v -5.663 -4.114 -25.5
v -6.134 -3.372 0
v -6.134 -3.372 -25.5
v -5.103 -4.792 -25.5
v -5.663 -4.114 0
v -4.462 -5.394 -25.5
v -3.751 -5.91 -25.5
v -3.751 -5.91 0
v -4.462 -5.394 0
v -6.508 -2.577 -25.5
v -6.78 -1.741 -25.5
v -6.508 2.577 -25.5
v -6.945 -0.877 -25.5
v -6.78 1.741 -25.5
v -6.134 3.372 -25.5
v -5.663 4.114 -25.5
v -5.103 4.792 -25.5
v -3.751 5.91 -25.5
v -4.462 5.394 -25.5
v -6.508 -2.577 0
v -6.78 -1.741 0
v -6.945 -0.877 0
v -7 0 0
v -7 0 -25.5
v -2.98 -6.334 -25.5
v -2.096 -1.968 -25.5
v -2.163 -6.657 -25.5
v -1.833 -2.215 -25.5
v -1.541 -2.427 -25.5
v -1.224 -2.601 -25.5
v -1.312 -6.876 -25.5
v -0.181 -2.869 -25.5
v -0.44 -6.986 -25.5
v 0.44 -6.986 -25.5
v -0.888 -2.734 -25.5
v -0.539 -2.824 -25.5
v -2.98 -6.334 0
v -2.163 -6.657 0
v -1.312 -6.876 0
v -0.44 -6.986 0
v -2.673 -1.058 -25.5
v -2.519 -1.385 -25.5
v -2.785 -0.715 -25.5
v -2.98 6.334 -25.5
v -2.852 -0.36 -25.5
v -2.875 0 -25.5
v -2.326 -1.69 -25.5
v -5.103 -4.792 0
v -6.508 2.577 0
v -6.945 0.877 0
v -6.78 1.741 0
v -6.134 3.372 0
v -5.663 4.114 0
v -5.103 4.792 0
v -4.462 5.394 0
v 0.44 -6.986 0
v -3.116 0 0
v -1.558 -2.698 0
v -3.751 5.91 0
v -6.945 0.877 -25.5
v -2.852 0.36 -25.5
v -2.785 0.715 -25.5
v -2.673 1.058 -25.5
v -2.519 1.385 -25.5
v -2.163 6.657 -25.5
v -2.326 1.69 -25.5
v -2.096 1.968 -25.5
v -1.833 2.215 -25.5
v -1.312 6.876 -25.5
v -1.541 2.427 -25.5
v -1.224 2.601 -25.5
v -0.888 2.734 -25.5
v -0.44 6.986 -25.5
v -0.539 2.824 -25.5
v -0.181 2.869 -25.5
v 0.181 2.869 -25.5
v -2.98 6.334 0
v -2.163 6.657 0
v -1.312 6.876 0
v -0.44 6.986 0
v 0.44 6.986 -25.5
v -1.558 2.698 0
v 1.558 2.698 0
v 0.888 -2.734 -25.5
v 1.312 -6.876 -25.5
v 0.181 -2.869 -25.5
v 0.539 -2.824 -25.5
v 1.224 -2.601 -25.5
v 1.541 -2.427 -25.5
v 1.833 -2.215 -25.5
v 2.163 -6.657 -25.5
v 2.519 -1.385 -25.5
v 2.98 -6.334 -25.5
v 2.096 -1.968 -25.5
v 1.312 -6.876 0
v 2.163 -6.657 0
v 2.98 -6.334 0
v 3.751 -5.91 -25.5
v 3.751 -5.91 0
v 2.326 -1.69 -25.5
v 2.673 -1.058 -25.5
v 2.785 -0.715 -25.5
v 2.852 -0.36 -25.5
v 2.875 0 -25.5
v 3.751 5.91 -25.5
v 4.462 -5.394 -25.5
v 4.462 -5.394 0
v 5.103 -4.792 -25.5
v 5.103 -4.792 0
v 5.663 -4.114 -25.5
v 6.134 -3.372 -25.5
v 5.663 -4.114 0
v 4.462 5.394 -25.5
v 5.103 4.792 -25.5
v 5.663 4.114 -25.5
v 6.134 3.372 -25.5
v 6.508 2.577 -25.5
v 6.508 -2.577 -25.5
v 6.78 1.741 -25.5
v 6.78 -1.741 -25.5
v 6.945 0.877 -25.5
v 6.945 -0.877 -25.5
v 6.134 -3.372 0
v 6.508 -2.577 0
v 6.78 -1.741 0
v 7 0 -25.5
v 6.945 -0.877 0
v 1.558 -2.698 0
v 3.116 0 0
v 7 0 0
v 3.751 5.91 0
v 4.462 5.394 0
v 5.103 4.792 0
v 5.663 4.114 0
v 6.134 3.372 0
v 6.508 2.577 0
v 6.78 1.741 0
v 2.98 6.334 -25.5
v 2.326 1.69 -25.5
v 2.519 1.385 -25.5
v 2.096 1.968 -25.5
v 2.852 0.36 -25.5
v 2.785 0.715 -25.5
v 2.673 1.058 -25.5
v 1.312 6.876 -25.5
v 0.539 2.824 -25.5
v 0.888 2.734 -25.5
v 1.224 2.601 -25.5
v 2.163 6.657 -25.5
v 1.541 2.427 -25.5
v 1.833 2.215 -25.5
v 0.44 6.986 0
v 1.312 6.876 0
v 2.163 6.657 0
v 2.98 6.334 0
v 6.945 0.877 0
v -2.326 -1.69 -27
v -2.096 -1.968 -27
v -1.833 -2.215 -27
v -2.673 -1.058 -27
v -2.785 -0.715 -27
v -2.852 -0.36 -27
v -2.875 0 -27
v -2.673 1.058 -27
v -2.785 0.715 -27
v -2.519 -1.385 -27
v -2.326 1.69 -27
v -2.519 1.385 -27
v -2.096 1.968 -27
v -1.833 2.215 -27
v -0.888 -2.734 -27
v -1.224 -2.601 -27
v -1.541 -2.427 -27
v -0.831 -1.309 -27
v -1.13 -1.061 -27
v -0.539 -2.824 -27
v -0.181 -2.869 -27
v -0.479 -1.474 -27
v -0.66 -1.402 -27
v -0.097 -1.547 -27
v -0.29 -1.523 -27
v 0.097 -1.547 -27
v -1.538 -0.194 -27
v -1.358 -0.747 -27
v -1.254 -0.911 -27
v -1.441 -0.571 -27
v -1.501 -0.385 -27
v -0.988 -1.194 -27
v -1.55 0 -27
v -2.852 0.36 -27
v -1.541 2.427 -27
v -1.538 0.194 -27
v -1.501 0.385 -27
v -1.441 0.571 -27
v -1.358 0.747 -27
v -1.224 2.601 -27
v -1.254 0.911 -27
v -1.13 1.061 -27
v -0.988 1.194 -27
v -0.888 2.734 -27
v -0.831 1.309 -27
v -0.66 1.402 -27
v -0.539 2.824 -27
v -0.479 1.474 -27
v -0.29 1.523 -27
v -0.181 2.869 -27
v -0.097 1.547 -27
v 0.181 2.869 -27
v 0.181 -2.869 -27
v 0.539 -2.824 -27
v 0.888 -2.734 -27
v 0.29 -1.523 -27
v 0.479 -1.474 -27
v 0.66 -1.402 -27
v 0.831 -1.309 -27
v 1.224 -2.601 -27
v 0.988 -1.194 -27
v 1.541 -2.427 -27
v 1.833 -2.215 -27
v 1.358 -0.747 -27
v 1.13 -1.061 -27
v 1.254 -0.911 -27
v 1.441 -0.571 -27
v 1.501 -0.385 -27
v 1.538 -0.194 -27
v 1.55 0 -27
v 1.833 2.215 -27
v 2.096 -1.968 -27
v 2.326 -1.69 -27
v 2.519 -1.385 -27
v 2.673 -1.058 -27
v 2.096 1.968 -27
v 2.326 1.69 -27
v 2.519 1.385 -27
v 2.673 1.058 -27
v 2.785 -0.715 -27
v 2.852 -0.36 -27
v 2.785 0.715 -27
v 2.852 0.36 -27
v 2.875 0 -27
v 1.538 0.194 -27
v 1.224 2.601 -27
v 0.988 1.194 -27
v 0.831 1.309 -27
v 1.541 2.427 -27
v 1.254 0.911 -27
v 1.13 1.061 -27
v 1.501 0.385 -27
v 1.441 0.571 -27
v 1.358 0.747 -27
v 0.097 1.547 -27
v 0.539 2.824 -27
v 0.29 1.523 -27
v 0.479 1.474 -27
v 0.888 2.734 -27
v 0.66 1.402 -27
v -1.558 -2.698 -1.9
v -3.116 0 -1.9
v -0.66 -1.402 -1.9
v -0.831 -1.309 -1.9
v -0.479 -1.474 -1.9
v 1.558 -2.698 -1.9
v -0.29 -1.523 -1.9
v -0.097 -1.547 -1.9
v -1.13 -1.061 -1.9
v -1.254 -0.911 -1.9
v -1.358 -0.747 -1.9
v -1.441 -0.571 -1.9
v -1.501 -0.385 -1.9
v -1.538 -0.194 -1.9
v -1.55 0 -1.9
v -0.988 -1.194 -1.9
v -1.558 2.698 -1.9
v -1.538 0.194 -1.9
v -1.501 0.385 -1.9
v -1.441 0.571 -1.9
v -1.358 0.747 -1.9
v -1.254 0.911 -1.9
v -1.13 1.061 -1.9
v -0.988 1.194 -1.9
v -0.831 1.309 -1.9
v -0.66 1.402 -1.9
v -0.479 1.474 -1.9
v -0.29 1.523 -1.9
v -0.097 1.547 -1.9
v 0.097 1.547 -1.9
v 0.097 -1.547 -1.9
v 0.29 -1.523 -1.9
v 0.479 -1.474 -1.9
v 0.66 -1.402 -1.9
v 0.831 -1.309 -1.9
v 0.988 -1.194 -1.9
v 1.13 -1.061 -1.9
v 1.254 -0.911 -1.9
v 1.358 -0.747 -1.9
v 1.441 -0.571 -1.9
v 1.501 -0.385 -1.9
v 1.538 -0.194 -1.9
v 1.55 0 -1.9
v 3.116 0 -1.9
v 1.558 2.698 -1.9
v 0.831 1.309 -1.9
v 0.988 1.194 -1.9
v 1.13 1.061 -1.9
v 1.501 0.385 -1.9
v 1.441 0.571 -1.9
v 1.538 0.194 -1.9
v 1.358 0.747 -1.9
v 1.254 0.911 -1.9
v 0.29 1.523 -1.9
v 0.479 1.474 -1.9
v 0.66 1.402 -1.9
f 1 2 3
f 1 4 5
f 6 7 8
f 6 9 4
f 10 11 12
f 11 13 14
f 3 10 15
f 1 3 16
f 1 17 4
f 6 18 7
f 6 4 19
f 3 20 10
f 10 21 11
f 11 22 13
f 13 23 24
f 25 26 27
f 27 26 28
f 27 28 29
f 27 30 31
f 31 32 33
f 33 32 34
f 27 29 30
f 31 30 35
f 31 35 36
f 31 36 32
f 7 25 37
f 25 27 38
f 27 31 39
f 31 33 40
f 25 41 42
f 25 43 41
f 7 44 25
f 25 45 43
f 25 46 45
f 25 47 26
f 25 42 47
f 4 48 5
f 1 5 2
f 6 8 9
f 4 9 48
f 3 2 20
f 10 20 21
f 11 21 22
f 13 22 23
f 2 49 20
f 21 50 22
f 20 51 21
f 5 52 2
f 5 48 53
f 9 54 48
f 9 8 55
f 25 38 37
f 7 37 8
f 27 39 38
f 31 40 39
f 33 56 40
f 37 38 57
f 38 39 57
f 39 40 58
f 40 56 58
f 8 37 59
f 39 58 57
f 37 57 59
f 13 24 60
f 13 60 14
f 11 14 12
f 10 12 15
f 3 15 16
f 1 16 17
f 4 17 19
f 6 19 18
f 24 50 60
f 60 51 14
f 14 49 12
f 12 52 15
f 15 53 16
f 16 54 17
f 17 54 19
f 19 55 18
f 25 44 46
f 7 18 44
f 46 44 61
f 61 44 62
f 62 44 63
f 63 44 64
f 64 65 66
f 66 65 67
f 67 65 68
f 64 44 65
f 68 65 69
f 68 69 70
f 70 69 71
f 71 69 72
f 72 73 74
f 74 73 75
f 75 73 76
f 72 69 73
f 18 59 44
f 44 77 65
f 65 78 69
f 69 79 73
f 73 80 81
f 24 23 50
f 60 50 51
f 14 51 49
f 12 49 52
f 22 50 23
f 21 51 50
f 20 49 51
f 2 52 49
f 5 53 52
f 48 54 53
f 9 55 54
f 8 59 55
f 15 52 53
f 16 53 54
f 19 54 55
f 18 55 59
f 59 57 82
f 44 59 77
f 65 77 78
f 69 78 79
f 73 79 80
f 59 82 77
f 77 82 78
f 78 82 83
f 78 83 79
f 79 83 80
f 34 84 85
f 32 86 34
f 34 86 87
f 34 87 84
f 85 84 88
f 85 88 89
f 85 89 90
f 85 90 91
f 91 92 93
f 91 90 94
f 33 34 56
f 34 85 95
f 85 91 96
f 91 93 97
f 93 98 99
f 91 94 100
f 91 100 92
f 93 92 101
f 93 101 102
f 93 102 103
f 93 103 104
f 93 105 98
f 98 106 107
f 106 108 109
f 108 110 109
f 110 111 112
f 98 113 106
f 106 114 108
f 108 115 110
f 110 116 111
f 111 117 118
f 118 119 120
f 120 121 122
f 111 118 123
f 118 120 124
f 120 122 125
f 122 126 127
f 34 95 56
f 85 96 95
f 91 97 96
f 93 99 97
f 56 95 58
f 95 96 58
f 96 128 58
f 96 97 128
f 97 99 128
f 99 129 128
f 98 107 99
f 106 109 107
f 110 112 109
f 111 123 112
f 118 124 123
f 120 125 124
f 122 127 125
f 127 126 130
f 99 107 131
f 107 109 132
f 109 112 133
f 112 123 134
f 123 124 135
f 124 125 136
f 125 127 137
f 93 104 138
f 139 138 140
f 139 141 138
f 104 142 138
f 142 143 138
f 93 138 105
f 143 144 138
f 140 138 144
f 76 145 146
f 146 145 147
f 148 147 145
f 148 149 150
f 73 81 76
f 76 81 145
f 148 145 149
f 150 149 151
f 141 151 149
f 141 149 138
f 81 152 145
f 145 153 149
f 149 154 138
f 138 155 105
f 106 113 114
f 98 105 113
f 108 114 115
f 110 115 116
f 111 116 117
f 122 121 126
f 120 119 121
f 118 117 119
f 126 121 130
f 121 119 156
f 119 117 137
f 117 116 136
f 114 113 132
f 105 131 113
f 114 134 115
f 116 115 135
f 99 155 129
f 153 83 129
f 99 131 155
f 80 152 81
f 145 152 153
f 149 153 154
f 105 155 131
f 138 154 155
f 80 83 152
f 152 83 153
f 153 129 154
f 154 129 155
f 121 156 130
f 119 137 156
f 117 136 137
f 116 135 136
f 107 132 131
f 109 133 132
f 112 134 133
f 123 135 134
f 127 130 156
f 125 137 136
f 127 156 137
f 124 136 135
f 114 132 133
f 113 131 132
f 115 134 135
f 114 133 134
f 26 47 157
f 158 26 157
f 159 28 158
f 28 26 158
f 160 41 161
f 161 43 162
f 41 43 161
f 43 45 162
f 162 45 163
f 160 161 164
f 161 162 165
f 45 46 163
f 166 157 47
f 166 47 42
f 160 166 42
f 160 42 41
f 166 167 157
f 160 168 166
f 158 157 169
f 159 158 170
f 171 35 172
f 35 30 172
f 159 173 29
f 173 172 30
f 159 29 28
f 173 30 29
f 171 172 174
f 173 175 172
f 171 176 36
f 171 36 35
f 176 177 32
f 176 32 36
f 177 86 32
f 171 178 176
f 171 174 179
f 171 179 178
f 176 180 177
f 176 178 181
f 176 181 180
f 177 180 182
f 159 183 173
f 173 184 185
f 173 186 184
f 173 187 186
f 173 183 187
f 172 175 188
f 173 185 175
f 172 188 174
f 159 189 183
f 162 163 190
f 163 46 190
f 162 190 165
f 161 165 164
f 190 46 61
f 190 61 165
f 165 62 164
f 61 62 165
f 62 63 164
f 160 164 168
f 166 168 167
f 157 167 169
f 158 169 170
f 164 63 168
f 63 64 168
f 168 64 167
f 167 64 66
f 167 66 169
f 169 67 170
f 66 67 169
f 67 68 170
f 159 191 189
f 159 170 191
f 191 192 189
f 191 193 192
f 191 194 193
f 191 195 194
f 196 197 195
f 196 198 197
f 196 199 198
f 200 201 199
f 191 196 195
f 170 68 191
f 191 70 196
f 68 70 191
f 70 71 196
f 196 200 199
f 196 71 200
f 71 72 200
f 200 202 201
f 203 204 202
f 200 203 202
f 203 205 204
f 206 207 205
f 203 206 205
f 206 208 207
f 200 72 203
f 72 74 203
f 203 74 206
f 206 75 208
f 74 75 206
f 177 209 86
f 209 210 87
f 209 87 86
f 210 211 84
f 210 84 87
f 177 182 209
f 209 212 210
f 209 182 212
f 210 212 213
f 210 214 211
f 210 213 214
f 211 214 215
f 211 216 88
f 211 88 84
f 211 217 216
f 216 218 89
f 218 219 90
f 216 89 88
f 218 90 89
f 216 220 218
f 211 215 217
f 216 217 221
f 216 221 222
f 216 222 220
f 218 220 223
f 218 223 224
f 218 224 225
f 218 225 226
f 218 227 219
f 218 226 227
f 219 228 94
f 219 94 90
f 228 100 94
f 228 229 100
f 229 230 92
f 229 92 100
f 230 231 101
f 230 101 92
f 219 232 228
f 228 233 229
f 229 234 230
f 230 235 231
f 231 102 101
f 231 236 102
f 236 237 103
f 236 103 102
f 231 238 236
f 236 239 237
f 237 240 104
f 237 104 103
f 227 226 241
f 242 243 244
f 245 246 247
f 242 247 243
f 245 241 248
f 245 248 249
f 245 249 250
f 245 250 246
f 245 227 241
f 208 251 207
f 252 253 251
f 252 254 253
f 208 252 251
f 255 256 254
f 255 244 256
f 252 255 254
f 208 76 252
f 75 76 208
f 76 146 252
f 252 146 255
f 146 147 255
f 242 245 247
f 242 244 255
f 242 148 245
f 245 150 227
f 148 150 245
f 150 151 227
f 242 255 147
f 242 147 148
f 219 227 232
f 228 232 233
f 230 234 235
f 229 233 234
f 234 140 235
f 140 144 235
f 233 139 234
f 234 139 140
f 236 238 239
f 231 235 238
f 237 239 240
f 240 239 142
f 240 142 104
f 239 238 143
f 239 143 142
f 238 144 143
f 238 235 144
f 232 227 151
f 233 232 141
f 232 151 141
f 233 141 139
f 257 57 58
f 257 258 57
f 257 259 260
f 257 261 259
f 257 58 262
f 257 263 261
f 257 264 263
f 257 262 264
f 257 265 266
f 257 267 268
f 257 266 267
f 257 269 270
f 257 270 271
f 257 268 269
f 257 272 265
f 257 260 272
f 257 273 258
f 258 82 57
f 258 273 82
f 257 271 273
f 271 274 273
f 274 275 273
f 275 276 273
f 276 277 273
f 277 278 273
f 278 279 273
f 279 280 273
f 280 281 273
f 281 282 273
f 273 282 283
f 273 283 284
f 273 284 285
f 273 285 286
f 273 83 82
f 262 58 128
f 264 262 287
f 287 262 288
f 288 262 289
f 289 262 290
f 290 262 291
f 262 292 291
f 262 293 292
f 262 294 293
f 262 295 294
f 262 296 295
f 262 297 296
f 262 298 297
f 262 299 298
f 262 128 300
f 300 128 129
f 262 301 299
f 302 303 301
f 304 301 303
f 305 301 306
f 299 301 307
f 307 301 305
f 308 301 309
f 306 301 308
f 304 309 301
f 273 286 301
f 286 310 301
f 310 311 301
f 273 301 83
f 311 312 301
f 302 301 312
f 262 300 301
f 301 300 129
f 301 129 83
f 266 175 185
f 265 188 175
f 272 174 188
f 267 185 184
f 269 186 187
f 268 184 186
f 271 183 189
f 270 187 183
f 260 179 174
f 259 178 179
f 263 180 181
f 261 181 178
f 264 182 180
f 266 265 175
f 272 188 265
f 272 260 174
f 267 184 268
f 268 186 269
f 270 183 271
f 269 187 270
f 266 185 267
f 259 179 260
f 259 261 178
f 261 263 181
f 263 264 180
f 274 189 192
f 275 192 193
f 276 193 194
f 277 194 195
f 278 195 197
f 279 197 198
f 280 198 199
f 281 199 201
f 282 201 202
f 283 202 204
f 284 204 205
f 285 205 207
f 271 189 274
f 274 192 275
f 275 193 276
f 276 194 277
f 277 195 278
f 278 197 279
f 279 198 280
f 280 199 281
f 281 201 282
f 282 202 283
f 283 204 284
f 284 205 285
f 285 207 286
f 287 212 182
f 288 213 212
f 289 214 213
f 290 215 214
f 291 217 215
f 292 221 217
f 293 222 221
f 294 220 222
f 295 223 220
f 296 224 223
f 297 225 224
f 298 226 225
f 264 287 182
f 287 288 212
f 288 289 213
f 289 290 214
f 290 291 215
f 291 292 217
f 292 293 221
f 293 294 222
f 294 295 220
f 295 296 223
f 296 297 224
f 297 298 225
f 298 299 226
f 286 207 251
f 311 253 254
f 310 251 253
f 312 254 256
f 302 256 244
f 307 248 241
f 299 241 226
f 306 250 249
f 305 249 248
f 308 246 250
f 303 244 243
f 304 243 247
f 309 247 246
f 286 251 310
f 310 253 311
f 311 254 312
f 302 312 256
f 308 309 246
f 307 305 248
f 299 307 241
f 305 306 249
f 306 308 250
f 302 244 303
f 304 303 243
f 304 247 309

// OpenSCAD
$fn = 50;

difference() {
	union() {
		translate(v = [0, 0, -25.5]) {
			cylinder(h = 25.5, r = 7.0);
		}
		#translate(v = [0, 0, -27.0]) {
			cylinder(h = 27, r = 2.875);
		}
	}
	union() {
		translate(v = [0, 0, 0]) {
			rotate(a = [0, 0, 0]) {
				difference() {
					union() {
						translate(v = [0, 0, -1.9]) {
							linear_extrude(height = 1.9) {
								polygon(points = [[3.1158, 0.0], [1.5579000000000005, 2.698361953111554], [-1.5578999999999994, 2.6983619531115544], [-3.1158, 3.815754496783323e-16], [-1.5579000000000014, -2.6983619531115535], [1.557899999999998, -2.6983619531115552]]);
							}
						}
					}
					union();
				}
			}
		}
		#translate(v = [0, 0, -100.0]) {
			cylinder(h = 200, r = 1.55);
		}
	}
}
